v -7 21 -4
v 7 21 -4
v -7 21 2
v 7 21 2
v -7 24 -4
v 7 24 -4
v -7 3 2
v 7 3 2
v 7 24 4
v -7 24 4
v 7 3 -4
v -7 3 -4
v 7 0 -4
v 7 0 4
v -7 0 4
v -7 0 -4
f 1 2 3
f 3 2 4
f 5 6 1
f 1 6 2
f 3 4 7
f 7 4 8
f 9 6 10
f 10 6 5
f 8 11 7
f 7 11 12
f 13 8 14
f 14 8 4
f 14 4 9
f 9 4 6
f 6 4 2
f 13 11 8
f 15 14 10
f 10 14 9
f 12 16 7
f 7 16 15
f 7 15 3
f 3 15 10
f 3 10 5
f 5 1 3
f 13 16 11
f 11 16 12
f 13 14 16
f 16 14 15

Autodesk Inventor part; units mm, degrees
ref_plane "YZ Plane" through (0, 0, 0) normal (1, 0, 0) x (0, 1, 0)
ref_plane "XZ Plane" through (0, 0, 0) normal (0, 1, 0) x (-1, 0, 0)
ref_plane "XY Plane" through (0, 0, 0) normal (0, 0, 1) x (1, 0, 0)
sketch "Sketch1" plane through (0, 0, 0) normal (0, 1, 0) x (-1, 0, 0)
  line L0 (9.8, 0) -> (-9.8, 0) projected
  line L1 (0, -5.6) -> (0, 5.6) projected
  line L2 (-7, 4) -> (7, 4)
  line L3 (7, 4) -> (7, -4)
  line L4 (7, -4) -> (-7, -4)
  line L5 (-7, -4) -> (-7, 4)
  line L6 (-7, 4) -> (7, -4) construction
  line L7 (7, 4) -> (-7, -4) construction
  point P0 (0, 0)
  dimension "d0" = 14
  dimension "d1" = 8
extrude "Extrusion1" add sketch "Sketch1" along normal blind 3
sketch "Sketch2" plane through (0, 3, 0) normal (0, 1, 0) x (1, 0, 0)
  line L0 (-7, 4) -> (-7, -4) projected
  line L1 (7, -4) -> (7, 4) projected
  line L2 (-7, -4) -> (7, -4)
  line L3 (7, -4) -> (7, -2)
  line L4 (7, -2) -> (-7, -2)
  line L5 (-7, -2) -> (-7, -4)
  point P0 (0, 0)
  point P1 (-7, -2)
  dimension "d4" = 2
extrude "Extrusion2" add sketch "Sketch2" along normal blind 21
sketch "Sketch3" plane through (7, 3, 2) normal (0, 0, -1) x (-1, 0, 0)
  line L0 (0, -3) -> (0, 21) projected
  line L1 (14, -3) -> (14, 21) projected
  line L2 (0, 21) -> (14, 21)
  line L3 (14, 21) -> (14, 18)
  line L4 (14, 18) -> (0, 18)
  line L5 (0, 18) -> (0, 21)
  point P0 (7, -3)
  point P1 (0, 18)
  dimension "d7" = 3
extrude "Extrusion3" add sketch "Sketch3" along normal up to surface (6 mm away)
properties part number "uchwyt_krancowka_alternatywa_2"
